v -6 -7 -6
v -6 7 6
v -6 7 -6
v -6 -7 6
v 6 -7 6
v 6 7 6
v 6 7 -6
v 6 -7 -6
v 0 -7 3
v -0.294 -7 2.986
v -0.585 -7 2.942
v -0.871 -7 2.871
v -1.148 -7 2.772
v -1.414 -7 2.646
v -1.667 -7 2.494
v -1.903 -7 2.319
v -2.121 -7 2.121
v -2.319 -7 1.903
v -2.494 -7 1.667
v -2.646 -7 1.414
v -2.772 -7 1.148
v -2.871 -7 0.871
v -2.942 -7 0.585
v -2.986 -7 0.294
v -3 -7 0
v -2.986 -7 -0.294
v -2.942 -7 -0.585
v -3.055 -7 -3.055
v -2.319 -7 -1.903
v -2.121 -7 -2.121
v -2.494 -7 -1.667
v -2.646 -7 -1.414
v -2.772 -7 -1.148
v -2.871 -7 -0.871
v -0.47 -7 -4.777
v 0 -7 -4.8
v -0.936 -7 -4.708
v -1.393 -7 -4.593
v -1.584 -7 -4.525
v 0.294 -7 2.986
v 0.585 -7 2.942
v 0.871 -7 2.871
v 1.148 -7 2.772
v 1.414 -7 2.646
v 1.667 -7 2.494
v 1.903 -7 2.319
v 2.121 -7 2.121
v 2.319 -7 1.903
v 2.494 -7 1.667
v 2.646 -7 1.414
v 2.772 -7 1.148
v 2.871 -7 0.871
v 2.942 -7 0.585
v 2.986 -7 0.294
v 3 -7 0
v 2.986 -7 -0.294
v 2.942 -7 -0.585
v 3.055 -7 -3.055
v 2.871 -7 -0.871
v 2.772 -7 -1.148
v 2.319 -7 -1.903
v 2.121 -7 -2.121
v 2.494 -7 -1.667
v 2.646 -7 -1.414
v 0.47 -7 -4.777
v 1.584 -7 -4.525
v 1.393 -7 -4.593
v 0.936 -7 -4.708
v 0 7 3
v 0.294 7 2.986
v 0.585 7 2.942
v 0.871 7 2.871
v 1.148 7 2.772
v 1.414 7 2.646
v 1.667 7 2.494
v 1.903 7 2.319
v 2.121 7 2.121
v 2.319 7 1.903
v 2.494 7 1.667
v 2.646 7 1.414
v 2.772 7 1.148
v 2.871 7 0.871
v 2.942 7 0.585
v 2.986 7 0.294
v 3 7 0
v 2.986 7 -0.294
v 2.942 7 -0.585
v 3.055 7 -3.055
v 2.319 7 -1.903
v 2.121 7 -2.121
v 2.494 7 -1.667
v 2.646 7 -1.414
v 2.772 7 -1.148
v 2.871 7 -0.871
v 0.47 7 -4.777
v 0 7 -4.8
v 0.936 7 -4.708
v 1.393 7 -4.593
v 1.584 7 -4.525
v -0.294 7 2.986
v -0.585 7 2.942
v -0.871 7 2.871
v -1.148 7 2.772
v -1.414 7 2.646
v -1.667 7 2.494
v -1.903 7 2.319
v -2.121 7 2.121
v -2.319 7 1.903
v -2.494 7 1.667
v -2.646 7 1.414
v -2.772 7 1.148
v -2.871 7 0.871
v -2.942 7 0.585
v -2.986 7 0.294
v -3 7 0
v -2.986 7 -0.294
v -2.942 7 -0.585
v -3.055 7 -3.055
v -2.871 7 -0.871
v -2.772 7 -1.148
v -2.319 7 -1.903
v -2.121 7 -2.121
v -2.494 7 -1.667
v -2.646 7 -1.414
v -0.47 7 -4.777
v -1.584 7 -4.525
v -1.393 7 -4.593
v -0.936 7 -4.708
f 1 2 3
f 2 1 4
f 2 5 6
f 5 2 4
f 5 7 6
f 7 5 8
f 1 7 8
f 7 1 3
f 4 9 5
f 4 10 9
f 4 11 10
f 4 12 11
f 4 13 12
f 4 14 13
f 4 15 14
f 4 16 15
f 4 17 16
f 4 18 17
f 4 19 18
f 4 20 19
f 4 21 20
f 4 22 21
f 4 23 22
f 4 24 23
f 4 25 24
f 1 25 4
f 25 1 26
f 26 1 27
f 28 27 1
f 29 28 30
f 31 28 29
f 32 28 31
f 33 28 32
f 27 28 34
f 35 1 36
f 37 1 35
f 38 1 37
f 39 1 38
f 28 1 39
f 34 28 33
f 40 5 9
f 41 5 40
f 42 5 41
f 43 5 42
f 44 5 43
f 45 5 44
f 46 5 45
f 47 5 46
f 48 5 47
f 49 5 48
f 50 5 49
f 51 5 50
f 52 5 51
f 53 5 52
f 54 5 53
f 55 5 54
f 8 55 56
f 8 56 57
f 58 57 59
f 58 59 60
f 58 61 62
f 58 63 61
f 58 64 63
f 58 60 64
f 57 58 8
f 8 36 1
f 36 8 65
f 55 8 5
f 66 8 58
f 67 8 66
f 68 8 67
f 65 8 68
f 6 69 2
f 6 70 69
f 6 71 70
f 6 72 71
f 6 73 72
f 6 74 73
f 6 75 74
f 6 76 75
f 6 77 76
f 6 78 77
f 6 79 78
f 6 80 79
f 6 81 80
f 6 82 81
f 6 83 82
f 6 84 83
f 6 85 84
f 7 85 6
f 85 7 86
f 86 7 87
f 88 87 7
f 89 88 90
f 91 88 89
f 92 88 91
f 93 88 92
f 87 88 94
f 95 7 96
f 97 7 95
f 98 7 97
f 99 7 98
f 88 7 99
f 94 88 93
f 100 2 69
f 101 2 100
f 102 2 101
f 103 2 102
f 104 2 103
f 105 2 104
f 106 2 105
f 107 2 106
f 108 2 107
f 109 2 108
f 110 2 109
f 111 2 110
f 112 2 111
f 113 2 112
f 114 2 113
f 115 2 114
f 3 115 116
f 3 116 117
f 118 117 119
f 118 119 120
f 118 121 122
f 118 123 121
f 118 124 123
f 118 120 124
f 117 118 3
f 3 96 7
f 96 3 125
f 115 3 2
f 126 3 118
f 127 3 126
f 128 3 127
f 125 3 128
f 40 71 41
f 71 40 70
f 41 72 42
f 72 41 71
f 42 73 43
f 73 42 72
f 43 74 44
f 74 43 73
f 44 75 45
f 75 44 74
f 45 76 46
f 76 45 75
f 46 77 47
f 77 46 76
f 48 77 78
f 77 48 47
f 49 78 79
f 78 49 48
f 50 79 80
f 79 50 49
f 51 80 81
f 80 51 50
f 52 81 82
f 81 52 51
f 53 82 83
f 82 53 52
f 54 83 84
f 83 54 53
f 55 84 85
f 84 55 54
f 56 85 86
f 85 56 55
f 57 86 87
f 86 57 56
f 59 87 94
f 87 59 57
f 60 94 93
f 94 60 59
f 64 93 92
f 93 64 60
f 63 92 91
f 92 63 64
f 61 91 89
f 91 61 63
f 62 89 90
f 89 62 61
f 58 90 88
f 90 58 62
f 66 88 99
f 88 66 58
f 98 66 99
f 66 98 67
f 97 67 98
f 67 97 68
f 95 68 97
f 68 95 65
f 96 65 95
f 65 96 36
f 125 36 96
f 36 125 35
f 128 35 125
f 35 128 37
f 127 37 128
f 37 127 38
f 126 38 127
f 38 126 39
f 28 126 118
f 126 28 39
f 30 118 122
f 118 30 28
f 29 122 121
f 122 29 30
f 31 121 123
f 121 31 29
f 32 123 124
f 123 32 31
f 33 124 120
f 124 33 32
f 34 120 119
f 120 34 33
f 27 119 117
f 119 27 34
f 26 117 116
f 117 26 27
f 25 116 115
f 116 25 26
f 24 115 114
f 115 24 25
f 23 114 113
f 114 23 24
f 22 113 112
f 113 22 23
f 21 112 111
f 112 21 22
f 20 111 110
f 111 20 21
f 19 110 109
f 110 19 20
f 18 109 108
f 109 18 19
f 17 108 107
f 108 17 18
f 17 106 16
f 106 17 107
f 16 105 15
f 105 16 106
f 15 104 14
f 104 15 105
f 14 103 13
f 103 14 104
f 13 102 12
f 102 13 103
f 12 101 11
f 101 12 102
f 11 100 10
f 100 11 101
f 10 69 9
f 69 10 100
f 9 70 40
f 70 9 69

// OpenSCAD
// file: printability.scad
// printability.scad — small FDM-focused helpers shared across designs.
// All dimensions in millimeters. Use from a design with:
//   use <../../lib/printability.scad>
// These are deliberately lightweight (no BOSL2 dependency, fast to render).
// For fillets, real threads, attachments, etc. use BOSL2: include <BOSL2/std.scad>

// ---------------------------------------------------------------------------
// Metric fastener presets
// ---------------------------------------------------------------------------

// Clearance hole diameter ("normal" fit, ISO 273) — already includes clearance,
// no extra tolerance needed for FDM at typical accuracy.
function screw_clearance_d(size) =
    size == "M2"   ? 2.4 :
    size == "M2.5" ? 2.9 :
    size == "M3"   ? 3.4 :
    size == "M4"   ? 4.5 :
    size == "M5"   ? 5.5 :
    size == "M6"   ? 6.6 :
    assert(false, str("unknown screw size: ", size));

// Socket-cap head: [head diameter incl. 0.5 clearance, head height]
function socket_head(size) =
    size == "M2"   ? [4.3, 2.0] :
    size == "M2.5" ? [5.0, 2.5] :
    size == "M3"   ? [6.0, 3.0] :
    size == "M4"   ? [7.5, 4.0] :
    size == "M5"   ? [9.0, 5.0] :
    size == "M6"   ? [10.5, 6.0] :
    assert(false, str("unknown screw size: ", size));

// Heat-set insert hole diameter (typical brass inserts for plastic)
function heatset_hole_d(size) =
    size == "M2"   ? 3.2 :
    size == "M2.5" ? 3.6 :
    size == "M3"   ? 4.0 :
    size == "M4"   ? 5.6 :
    size == "M5"   ? 6.4 :
    assert(false, str("unknown insert size: ", size));

// ---------------------------------------------------------------------------
// Cutters (use inside difference()). All extend 0.01 past faces to avoid
// zero-thickness walls / z-fighting.
// ---------------------------------------------------------------------------

// Vertical clearance hole for a metric screw, optionally with a recessed head.
// l      — material thickness the hole passes through (hole spans z = 0..l)
// head   — "none" | "socket" (counterbore) | "countersunk" (90° csk)
// head_depth — counterbore depth; default = head height preset
module screw_hole(size = "M3", l = 10, head = "none", head_depth = undef) {
    d = screw_clearance_d(size);
    translate([0, 0, -0.01]) cylinder(d = d, h = l + 0.02);
    if (head == "socket") {
        hd = socket_head(size);
        depth = head_depth == undef ? hd[1] : head_depth;
        translate([0, 0, l - depth]) cylinder(d = hd[0], h = depth + 0.01);
    } else if (head == "countersunk") {
        ch = d; // 90° countersink: depth == radius growth
        translate([0, 0, l - ch]) cylinder(d1 = d, d2 = d + 2 * ch, h = ch + 0.01);
    }
}

// Teardrop-profile horizontal hole: prints without supports when the axis is
// horizontal. Axis along Y; the point of the teardrop faces +Z.
module teardrop_hole(d = 5, l = 10) {
    rotate([-90, 0, 0]) linear_extrude(l, center = true) {
        circle(d = d);
        // 45° roof so the top bridges cleanly
        intersection() {
            rotate(45) square(d * 0.72, center = false);
            circle(d = d * 1.6);
        }
    }
}

// ---------------------------------------------------------------------------
// Solids
// ---------------------------------------------------------------------------

// Boss for a heat-set insert: solid cylinder with the insert hole pre-cut.
// h — boss height; insert hole depth = insert length + 1 (pass insert_l).
module heatset_boss(size = "M3", h = 8, wall = 2.4, insert_l = 5) {
    hole_d = heatset_hole_d(size);
    difference() {
        cylinder(d = hole_d + 2 * wall, h = h);
        translate([0, 0, h - insert_l - 1]) cylinder(d = hole_d, h = insert_l + 1.01);
    }
}

// Cylinder with 45° chamfers so it prints cleanly and assembles easily.
// chamfer1/chamfer2 — bottom/top chamfer size (0 to disable either).
module chamfered_cylinder(d = 10, h = 10, chamfer1 = 0.6, chamfer2 = 0.6) {
    union() {
        if (chamfer1 > 0)
            cylinder(d1 = d - 2 * chamfer1, d2 = d, h = chamfer1);
        translate([0, 0, chamfer1])
            cylinder(d = d, h = h - chamfer1 - chamfer2);
        if (chamfer2 > 0)
            translate([0, 0, h - chamfer2])
                cylinder(d1 = d, d2 = d - 2 * chamfer2, h = chamfer2);
    }
}

// Box with rounded vertical edges and a chamfered bottom edge — the standard
// "sits nicely on the print bed" enclosure base shape.
module rounded_box(size = [40, 30, 15], r = 3, bottom_chamfer = 0.6) {
    hull() {
        for (x = [r, size[0] - r], y = [r, size[1] - r]) {
            translate([x, y, bottom_chamfer])
                cylinder(r = r, h = size[2] - bottom_chamfer);
            if (bottom_chamfer > 0)
                translate([x, y, 0])
                    cylinder(r1 = r - bottom_chamfer, r2 = r, h = bottom_chamfer);
        }
    }
}
// main file
use <printability.scad>
$fn=64;
difference() { translate([-6,-7,-6]) cube([12,14,12]); teardrop_hole(d=6,l=16); }
